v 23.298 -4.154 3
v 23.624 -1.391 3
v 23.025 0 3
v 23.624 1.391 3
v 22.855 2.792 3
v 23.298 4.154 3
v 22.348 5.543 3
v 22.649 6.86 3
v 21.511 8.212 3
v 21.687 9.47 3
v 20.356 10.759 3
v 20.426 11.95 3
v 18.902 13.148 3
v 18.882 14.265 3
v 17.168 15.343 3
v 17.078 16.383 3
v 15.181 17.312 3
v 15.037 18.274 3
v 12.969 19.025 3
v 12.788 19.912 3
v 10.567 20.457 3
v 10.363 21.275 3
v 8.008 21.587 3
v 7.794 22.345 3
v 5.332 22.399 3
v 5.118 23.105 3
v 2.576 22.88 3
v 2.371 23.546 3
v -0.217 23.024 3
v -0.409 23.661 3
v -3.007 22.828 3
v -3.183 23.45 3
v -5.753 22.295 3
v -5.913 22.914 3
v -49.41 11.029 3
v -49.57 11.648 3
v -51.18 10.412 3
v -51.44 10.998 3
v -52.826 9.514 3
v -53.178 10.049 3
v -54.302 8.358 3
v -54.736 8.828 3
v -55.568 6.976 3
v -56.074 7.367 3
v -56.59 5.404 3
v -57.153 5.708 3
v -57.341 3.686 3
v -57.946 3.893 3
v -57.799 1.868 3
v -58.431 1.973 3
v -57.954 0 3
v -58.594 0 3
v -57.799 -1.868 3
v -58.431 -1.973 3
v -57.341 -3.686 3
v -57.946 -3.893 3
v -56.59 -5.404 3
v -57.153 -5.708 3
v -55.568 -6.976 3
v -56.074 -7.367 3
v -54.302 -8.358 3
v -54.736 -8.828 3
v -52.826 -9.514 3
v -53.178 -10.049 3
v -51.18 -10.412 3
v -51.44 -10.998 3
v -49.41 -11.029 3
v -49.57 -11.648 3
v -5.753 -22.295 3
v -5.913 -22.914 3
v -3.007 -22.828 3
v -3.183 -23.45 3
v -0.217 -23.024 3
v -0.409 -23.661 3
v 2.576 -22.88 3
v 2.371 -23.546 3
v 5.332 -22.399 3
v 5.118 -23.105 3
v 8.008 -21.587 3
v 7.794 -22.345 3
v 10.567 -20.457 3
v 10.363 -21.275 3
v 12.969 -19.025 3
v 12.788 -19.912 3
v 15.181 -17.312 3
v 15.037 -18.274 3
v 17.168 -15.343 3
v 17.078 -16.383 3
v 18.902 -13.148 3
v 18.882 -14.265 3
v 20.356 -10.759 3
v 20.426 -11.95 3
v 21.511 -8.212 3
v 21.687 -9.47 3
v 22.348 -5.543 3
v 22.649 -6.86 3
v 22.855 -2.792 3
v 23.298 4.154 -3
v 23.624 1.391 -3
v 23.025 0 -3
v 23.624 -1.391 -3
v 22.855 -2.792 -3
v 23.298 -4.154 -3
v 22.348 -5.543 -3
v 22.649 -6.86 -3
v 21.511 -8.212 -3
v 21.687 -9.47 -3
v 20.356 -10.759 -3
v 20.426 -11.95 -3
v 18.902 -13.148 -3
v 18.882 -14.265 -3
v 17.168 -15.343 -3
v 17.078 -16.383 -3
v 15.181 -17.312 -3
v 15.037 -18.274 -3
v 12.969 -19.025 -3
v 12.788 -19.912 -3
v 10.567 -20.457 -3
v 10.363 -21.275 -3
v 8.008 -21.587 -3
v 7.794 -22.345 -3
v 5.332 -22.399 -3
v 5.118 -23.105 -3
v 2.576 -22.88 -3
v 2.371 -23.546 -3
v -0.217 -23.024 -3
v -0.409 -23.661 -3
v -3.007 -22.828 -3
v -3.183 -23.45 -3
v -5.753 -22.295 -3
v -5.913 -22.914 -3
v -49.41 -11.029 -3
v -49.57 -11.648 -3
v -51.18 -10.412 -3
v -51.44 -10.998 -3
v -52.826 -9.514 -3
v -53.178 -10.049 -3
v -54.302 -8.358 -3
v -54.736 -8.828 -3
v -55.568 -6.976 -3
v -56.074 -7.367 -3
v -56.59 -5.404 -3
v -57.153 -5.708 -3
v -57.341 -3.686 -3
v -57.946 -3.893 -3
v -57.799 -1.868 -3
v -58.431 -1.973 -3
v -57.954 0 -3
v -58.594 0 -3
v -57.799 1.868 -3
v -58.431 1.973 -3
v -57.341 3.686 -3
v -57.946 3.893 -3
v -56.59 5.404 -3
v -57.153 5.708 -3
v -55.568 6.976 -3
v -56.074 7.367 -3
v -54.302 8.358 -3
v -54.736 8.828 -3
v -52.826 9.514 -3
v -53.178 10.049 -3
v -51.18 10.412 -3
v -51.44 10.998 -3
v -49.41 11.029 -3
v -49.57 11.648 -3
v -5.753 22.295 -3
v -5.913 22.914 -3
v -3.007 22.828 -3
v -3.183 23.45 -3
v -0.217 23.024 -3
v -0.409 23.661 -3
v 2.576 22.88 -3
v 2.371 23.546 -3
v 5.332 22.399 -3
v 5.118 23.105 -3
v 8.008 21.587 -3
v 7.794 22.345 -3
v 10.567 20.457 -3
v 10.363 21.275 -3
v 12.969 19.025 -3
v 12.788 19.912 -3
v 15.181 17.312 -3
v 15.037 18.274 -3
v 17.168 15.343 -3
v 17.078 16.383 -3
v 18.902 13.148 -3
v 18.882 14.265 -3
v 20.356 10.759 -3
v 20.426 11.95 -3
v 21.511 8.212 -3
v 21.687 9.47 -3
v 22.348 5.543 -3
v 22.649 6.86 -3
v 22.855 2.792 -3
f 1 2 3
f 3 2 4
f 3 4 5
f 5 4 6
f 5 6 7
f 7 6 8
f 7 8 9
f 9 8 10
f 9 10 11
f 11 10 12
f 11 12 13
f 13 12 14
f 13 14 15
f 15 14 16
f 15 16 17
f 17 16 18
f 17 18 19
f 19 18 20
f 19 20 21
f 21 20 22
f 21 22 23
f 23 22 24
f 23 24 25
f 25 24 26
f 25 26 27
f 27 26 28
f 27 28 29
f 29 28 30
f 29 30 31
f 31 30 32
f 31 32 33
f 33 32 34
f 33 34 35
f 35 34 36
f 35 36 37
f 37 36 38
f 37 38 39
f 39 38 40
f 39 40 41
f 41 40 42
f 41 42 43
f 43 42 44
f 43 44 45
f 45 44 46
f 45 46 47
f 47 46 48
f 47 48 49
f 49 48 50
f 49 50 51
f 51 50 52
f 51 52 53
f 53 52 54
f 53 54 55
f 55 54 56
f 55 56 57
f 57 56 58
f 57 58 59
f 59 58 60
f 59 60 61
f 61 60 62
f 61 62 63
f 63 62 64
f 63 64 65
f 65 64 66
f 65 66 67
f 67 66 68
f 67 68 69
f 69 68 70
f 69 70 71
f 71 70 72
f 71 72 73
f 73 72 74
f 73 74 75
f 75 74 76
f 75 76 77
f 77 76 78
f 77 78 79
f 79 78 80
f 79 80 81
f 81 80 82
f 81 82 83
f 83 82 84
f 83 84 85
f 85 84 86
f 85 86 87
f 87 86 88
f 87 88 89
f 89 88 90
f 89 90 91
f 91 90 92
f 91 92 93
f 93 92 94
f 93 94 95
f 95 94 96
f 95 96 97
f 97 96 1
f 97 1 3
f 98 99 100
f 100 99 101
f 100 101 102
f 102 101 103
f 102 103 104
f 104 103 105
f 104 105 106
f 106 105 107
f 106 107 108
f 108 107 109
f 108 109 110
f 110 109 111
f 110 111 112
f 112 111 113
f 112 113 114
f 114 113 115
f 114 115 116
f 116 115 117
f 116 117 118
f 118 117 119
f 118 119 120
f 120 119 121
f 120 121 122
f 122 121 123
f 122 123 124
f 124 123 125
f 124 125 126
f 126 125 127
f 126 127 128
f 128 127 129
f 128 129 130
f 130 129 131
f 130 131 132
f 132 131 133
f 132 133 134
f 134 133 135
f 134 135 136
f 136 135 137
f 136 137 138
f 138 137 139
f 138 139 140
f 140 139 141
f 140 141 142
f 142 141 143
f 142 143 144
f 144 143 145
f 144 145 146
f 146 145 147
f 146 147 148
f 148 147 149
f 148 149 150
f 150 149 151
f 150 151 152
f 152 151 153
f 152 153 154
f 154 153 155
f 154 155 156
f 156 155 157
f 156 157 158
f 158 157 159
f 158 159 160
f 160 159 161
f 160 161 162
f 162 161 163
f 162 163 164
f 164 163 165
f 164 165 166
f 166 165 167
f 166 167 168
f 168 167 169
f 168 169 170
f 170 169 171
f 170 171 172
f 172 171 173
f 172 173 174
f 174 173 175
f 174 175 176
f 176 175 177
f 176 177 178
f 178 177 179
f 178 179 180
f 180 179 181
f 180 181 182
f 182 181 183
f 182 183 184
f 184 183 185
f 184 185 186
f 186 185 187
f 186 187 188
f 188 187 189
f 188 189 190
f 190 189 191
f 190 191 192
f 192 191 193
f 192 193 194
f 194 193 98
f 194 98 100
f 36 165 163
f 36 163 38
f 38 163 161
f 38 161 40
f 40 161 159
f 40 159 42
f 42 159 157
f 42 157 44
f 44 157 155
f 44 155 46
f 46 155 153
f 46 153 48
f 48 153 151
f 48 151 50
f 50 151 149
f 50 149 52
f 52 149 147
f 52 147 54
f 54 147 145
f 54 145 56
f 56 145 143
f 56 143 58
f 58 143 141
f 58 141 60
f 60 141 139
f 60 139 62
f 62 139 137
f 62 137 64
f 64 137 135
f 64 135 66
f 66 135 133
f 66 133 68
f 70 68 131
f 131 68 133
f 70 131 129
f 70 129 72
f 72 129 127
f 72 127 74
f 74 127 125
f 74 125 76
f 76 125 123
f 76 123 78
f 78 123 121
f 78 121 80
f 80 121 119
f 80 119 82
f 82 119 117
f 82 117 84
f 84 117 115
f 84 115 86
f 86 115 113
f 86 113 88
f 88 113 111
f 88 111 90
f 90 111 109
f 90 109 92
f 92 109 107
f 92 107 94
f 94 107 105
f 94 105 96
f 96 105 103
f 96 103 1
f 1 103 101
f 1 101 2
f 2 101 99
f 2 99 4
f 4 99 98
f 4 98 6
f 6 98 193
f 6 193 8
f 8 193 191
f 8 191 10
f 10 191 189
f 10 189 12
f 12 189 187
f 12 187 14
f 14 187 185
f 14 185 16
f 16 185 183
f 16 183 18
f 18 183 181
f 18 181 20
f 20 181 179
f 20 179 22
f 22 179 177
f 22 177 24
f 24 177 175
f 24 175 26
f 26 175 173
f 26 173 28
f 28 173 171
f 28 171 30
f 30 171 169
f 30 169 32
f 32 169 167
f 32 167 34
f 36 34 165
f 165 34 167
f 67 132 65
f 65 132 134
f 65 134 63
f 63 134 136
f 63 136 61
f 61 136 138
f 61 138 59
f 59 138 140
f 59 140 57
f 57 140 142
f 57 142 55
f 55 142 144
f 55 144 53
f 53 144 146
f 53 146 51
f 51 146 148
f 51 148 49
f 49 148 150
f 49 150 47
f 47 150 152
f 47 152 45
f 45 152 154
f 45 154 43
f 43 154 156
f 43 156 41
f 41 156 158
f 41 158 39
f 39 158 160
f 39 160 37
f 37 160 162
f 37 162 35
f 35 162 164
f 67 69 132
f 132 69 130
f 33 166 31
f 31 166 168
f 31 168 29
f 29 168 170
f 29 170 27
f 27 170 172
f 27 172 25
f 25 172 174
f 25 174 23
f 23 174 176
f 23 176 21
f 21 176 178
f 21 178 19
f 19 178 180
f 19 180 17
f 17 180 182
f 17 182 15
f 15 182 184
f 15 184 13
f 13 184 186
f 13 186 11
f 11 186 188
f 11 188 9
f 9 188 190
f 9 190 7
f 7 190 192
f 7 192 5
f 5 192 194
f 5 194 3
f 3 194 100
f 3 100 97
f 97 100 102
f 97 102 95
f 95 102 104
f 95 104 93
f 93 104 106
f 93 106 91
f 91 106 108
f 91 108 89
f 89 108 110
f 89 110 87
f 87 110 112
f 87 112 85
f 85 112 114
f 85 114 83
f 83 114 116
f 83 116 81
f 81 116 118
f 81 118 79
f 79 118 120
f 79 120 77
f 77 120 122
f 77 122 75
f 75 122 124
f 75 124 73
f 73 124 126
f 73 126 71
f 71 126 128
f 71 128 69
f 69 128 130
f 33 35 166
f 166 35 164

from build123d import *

# Parameters (mm, degrees)
BOSS_EXTRUDE1_DEPTH = 3


with BuildPart() as part:
    # Sketch4 → Boss-Extrude1 (new body, symmetric)
    with BuildSketch(Plane.XY):
        with BuildLine():
            Line((-49.569635322, 11.648391942), (-5.913243351, 22.914313825))
            ThreePointArc((-5.913243351, 22.914313825), (23.665, 0), (-5.913243351, -22.914313825))
            Line((-5.913243351, -22.914313825), (-49.569635322, -11.648391942))
            ThreePointArc((-49.569635322, -11.648391942), (-58.593663739, 0), (-49.569635322, 11.648391942))
        make_face()
        with BuildLine():
            Line((-49.409716634, 11.028693618), (-5.753324663, 22.294615501))
            ThreePointArc((-5.753324663, 22.294615501), (23.025, 0), (-5.753324663, -22.294615501))
            Line((-5.753324663, -22.294615501), (-49.409716634, -11.028693618))
            ThreePointArc((-49.409716634, -11.028693618), (-57.953663739, 0), (-49.409716634, 11.028693618))
        make_face(mode=Mode.SUBTRACT)
    extrude(amount=BOSS_EXTRUDE1_DEPTH, both=True)


solid = part.part
